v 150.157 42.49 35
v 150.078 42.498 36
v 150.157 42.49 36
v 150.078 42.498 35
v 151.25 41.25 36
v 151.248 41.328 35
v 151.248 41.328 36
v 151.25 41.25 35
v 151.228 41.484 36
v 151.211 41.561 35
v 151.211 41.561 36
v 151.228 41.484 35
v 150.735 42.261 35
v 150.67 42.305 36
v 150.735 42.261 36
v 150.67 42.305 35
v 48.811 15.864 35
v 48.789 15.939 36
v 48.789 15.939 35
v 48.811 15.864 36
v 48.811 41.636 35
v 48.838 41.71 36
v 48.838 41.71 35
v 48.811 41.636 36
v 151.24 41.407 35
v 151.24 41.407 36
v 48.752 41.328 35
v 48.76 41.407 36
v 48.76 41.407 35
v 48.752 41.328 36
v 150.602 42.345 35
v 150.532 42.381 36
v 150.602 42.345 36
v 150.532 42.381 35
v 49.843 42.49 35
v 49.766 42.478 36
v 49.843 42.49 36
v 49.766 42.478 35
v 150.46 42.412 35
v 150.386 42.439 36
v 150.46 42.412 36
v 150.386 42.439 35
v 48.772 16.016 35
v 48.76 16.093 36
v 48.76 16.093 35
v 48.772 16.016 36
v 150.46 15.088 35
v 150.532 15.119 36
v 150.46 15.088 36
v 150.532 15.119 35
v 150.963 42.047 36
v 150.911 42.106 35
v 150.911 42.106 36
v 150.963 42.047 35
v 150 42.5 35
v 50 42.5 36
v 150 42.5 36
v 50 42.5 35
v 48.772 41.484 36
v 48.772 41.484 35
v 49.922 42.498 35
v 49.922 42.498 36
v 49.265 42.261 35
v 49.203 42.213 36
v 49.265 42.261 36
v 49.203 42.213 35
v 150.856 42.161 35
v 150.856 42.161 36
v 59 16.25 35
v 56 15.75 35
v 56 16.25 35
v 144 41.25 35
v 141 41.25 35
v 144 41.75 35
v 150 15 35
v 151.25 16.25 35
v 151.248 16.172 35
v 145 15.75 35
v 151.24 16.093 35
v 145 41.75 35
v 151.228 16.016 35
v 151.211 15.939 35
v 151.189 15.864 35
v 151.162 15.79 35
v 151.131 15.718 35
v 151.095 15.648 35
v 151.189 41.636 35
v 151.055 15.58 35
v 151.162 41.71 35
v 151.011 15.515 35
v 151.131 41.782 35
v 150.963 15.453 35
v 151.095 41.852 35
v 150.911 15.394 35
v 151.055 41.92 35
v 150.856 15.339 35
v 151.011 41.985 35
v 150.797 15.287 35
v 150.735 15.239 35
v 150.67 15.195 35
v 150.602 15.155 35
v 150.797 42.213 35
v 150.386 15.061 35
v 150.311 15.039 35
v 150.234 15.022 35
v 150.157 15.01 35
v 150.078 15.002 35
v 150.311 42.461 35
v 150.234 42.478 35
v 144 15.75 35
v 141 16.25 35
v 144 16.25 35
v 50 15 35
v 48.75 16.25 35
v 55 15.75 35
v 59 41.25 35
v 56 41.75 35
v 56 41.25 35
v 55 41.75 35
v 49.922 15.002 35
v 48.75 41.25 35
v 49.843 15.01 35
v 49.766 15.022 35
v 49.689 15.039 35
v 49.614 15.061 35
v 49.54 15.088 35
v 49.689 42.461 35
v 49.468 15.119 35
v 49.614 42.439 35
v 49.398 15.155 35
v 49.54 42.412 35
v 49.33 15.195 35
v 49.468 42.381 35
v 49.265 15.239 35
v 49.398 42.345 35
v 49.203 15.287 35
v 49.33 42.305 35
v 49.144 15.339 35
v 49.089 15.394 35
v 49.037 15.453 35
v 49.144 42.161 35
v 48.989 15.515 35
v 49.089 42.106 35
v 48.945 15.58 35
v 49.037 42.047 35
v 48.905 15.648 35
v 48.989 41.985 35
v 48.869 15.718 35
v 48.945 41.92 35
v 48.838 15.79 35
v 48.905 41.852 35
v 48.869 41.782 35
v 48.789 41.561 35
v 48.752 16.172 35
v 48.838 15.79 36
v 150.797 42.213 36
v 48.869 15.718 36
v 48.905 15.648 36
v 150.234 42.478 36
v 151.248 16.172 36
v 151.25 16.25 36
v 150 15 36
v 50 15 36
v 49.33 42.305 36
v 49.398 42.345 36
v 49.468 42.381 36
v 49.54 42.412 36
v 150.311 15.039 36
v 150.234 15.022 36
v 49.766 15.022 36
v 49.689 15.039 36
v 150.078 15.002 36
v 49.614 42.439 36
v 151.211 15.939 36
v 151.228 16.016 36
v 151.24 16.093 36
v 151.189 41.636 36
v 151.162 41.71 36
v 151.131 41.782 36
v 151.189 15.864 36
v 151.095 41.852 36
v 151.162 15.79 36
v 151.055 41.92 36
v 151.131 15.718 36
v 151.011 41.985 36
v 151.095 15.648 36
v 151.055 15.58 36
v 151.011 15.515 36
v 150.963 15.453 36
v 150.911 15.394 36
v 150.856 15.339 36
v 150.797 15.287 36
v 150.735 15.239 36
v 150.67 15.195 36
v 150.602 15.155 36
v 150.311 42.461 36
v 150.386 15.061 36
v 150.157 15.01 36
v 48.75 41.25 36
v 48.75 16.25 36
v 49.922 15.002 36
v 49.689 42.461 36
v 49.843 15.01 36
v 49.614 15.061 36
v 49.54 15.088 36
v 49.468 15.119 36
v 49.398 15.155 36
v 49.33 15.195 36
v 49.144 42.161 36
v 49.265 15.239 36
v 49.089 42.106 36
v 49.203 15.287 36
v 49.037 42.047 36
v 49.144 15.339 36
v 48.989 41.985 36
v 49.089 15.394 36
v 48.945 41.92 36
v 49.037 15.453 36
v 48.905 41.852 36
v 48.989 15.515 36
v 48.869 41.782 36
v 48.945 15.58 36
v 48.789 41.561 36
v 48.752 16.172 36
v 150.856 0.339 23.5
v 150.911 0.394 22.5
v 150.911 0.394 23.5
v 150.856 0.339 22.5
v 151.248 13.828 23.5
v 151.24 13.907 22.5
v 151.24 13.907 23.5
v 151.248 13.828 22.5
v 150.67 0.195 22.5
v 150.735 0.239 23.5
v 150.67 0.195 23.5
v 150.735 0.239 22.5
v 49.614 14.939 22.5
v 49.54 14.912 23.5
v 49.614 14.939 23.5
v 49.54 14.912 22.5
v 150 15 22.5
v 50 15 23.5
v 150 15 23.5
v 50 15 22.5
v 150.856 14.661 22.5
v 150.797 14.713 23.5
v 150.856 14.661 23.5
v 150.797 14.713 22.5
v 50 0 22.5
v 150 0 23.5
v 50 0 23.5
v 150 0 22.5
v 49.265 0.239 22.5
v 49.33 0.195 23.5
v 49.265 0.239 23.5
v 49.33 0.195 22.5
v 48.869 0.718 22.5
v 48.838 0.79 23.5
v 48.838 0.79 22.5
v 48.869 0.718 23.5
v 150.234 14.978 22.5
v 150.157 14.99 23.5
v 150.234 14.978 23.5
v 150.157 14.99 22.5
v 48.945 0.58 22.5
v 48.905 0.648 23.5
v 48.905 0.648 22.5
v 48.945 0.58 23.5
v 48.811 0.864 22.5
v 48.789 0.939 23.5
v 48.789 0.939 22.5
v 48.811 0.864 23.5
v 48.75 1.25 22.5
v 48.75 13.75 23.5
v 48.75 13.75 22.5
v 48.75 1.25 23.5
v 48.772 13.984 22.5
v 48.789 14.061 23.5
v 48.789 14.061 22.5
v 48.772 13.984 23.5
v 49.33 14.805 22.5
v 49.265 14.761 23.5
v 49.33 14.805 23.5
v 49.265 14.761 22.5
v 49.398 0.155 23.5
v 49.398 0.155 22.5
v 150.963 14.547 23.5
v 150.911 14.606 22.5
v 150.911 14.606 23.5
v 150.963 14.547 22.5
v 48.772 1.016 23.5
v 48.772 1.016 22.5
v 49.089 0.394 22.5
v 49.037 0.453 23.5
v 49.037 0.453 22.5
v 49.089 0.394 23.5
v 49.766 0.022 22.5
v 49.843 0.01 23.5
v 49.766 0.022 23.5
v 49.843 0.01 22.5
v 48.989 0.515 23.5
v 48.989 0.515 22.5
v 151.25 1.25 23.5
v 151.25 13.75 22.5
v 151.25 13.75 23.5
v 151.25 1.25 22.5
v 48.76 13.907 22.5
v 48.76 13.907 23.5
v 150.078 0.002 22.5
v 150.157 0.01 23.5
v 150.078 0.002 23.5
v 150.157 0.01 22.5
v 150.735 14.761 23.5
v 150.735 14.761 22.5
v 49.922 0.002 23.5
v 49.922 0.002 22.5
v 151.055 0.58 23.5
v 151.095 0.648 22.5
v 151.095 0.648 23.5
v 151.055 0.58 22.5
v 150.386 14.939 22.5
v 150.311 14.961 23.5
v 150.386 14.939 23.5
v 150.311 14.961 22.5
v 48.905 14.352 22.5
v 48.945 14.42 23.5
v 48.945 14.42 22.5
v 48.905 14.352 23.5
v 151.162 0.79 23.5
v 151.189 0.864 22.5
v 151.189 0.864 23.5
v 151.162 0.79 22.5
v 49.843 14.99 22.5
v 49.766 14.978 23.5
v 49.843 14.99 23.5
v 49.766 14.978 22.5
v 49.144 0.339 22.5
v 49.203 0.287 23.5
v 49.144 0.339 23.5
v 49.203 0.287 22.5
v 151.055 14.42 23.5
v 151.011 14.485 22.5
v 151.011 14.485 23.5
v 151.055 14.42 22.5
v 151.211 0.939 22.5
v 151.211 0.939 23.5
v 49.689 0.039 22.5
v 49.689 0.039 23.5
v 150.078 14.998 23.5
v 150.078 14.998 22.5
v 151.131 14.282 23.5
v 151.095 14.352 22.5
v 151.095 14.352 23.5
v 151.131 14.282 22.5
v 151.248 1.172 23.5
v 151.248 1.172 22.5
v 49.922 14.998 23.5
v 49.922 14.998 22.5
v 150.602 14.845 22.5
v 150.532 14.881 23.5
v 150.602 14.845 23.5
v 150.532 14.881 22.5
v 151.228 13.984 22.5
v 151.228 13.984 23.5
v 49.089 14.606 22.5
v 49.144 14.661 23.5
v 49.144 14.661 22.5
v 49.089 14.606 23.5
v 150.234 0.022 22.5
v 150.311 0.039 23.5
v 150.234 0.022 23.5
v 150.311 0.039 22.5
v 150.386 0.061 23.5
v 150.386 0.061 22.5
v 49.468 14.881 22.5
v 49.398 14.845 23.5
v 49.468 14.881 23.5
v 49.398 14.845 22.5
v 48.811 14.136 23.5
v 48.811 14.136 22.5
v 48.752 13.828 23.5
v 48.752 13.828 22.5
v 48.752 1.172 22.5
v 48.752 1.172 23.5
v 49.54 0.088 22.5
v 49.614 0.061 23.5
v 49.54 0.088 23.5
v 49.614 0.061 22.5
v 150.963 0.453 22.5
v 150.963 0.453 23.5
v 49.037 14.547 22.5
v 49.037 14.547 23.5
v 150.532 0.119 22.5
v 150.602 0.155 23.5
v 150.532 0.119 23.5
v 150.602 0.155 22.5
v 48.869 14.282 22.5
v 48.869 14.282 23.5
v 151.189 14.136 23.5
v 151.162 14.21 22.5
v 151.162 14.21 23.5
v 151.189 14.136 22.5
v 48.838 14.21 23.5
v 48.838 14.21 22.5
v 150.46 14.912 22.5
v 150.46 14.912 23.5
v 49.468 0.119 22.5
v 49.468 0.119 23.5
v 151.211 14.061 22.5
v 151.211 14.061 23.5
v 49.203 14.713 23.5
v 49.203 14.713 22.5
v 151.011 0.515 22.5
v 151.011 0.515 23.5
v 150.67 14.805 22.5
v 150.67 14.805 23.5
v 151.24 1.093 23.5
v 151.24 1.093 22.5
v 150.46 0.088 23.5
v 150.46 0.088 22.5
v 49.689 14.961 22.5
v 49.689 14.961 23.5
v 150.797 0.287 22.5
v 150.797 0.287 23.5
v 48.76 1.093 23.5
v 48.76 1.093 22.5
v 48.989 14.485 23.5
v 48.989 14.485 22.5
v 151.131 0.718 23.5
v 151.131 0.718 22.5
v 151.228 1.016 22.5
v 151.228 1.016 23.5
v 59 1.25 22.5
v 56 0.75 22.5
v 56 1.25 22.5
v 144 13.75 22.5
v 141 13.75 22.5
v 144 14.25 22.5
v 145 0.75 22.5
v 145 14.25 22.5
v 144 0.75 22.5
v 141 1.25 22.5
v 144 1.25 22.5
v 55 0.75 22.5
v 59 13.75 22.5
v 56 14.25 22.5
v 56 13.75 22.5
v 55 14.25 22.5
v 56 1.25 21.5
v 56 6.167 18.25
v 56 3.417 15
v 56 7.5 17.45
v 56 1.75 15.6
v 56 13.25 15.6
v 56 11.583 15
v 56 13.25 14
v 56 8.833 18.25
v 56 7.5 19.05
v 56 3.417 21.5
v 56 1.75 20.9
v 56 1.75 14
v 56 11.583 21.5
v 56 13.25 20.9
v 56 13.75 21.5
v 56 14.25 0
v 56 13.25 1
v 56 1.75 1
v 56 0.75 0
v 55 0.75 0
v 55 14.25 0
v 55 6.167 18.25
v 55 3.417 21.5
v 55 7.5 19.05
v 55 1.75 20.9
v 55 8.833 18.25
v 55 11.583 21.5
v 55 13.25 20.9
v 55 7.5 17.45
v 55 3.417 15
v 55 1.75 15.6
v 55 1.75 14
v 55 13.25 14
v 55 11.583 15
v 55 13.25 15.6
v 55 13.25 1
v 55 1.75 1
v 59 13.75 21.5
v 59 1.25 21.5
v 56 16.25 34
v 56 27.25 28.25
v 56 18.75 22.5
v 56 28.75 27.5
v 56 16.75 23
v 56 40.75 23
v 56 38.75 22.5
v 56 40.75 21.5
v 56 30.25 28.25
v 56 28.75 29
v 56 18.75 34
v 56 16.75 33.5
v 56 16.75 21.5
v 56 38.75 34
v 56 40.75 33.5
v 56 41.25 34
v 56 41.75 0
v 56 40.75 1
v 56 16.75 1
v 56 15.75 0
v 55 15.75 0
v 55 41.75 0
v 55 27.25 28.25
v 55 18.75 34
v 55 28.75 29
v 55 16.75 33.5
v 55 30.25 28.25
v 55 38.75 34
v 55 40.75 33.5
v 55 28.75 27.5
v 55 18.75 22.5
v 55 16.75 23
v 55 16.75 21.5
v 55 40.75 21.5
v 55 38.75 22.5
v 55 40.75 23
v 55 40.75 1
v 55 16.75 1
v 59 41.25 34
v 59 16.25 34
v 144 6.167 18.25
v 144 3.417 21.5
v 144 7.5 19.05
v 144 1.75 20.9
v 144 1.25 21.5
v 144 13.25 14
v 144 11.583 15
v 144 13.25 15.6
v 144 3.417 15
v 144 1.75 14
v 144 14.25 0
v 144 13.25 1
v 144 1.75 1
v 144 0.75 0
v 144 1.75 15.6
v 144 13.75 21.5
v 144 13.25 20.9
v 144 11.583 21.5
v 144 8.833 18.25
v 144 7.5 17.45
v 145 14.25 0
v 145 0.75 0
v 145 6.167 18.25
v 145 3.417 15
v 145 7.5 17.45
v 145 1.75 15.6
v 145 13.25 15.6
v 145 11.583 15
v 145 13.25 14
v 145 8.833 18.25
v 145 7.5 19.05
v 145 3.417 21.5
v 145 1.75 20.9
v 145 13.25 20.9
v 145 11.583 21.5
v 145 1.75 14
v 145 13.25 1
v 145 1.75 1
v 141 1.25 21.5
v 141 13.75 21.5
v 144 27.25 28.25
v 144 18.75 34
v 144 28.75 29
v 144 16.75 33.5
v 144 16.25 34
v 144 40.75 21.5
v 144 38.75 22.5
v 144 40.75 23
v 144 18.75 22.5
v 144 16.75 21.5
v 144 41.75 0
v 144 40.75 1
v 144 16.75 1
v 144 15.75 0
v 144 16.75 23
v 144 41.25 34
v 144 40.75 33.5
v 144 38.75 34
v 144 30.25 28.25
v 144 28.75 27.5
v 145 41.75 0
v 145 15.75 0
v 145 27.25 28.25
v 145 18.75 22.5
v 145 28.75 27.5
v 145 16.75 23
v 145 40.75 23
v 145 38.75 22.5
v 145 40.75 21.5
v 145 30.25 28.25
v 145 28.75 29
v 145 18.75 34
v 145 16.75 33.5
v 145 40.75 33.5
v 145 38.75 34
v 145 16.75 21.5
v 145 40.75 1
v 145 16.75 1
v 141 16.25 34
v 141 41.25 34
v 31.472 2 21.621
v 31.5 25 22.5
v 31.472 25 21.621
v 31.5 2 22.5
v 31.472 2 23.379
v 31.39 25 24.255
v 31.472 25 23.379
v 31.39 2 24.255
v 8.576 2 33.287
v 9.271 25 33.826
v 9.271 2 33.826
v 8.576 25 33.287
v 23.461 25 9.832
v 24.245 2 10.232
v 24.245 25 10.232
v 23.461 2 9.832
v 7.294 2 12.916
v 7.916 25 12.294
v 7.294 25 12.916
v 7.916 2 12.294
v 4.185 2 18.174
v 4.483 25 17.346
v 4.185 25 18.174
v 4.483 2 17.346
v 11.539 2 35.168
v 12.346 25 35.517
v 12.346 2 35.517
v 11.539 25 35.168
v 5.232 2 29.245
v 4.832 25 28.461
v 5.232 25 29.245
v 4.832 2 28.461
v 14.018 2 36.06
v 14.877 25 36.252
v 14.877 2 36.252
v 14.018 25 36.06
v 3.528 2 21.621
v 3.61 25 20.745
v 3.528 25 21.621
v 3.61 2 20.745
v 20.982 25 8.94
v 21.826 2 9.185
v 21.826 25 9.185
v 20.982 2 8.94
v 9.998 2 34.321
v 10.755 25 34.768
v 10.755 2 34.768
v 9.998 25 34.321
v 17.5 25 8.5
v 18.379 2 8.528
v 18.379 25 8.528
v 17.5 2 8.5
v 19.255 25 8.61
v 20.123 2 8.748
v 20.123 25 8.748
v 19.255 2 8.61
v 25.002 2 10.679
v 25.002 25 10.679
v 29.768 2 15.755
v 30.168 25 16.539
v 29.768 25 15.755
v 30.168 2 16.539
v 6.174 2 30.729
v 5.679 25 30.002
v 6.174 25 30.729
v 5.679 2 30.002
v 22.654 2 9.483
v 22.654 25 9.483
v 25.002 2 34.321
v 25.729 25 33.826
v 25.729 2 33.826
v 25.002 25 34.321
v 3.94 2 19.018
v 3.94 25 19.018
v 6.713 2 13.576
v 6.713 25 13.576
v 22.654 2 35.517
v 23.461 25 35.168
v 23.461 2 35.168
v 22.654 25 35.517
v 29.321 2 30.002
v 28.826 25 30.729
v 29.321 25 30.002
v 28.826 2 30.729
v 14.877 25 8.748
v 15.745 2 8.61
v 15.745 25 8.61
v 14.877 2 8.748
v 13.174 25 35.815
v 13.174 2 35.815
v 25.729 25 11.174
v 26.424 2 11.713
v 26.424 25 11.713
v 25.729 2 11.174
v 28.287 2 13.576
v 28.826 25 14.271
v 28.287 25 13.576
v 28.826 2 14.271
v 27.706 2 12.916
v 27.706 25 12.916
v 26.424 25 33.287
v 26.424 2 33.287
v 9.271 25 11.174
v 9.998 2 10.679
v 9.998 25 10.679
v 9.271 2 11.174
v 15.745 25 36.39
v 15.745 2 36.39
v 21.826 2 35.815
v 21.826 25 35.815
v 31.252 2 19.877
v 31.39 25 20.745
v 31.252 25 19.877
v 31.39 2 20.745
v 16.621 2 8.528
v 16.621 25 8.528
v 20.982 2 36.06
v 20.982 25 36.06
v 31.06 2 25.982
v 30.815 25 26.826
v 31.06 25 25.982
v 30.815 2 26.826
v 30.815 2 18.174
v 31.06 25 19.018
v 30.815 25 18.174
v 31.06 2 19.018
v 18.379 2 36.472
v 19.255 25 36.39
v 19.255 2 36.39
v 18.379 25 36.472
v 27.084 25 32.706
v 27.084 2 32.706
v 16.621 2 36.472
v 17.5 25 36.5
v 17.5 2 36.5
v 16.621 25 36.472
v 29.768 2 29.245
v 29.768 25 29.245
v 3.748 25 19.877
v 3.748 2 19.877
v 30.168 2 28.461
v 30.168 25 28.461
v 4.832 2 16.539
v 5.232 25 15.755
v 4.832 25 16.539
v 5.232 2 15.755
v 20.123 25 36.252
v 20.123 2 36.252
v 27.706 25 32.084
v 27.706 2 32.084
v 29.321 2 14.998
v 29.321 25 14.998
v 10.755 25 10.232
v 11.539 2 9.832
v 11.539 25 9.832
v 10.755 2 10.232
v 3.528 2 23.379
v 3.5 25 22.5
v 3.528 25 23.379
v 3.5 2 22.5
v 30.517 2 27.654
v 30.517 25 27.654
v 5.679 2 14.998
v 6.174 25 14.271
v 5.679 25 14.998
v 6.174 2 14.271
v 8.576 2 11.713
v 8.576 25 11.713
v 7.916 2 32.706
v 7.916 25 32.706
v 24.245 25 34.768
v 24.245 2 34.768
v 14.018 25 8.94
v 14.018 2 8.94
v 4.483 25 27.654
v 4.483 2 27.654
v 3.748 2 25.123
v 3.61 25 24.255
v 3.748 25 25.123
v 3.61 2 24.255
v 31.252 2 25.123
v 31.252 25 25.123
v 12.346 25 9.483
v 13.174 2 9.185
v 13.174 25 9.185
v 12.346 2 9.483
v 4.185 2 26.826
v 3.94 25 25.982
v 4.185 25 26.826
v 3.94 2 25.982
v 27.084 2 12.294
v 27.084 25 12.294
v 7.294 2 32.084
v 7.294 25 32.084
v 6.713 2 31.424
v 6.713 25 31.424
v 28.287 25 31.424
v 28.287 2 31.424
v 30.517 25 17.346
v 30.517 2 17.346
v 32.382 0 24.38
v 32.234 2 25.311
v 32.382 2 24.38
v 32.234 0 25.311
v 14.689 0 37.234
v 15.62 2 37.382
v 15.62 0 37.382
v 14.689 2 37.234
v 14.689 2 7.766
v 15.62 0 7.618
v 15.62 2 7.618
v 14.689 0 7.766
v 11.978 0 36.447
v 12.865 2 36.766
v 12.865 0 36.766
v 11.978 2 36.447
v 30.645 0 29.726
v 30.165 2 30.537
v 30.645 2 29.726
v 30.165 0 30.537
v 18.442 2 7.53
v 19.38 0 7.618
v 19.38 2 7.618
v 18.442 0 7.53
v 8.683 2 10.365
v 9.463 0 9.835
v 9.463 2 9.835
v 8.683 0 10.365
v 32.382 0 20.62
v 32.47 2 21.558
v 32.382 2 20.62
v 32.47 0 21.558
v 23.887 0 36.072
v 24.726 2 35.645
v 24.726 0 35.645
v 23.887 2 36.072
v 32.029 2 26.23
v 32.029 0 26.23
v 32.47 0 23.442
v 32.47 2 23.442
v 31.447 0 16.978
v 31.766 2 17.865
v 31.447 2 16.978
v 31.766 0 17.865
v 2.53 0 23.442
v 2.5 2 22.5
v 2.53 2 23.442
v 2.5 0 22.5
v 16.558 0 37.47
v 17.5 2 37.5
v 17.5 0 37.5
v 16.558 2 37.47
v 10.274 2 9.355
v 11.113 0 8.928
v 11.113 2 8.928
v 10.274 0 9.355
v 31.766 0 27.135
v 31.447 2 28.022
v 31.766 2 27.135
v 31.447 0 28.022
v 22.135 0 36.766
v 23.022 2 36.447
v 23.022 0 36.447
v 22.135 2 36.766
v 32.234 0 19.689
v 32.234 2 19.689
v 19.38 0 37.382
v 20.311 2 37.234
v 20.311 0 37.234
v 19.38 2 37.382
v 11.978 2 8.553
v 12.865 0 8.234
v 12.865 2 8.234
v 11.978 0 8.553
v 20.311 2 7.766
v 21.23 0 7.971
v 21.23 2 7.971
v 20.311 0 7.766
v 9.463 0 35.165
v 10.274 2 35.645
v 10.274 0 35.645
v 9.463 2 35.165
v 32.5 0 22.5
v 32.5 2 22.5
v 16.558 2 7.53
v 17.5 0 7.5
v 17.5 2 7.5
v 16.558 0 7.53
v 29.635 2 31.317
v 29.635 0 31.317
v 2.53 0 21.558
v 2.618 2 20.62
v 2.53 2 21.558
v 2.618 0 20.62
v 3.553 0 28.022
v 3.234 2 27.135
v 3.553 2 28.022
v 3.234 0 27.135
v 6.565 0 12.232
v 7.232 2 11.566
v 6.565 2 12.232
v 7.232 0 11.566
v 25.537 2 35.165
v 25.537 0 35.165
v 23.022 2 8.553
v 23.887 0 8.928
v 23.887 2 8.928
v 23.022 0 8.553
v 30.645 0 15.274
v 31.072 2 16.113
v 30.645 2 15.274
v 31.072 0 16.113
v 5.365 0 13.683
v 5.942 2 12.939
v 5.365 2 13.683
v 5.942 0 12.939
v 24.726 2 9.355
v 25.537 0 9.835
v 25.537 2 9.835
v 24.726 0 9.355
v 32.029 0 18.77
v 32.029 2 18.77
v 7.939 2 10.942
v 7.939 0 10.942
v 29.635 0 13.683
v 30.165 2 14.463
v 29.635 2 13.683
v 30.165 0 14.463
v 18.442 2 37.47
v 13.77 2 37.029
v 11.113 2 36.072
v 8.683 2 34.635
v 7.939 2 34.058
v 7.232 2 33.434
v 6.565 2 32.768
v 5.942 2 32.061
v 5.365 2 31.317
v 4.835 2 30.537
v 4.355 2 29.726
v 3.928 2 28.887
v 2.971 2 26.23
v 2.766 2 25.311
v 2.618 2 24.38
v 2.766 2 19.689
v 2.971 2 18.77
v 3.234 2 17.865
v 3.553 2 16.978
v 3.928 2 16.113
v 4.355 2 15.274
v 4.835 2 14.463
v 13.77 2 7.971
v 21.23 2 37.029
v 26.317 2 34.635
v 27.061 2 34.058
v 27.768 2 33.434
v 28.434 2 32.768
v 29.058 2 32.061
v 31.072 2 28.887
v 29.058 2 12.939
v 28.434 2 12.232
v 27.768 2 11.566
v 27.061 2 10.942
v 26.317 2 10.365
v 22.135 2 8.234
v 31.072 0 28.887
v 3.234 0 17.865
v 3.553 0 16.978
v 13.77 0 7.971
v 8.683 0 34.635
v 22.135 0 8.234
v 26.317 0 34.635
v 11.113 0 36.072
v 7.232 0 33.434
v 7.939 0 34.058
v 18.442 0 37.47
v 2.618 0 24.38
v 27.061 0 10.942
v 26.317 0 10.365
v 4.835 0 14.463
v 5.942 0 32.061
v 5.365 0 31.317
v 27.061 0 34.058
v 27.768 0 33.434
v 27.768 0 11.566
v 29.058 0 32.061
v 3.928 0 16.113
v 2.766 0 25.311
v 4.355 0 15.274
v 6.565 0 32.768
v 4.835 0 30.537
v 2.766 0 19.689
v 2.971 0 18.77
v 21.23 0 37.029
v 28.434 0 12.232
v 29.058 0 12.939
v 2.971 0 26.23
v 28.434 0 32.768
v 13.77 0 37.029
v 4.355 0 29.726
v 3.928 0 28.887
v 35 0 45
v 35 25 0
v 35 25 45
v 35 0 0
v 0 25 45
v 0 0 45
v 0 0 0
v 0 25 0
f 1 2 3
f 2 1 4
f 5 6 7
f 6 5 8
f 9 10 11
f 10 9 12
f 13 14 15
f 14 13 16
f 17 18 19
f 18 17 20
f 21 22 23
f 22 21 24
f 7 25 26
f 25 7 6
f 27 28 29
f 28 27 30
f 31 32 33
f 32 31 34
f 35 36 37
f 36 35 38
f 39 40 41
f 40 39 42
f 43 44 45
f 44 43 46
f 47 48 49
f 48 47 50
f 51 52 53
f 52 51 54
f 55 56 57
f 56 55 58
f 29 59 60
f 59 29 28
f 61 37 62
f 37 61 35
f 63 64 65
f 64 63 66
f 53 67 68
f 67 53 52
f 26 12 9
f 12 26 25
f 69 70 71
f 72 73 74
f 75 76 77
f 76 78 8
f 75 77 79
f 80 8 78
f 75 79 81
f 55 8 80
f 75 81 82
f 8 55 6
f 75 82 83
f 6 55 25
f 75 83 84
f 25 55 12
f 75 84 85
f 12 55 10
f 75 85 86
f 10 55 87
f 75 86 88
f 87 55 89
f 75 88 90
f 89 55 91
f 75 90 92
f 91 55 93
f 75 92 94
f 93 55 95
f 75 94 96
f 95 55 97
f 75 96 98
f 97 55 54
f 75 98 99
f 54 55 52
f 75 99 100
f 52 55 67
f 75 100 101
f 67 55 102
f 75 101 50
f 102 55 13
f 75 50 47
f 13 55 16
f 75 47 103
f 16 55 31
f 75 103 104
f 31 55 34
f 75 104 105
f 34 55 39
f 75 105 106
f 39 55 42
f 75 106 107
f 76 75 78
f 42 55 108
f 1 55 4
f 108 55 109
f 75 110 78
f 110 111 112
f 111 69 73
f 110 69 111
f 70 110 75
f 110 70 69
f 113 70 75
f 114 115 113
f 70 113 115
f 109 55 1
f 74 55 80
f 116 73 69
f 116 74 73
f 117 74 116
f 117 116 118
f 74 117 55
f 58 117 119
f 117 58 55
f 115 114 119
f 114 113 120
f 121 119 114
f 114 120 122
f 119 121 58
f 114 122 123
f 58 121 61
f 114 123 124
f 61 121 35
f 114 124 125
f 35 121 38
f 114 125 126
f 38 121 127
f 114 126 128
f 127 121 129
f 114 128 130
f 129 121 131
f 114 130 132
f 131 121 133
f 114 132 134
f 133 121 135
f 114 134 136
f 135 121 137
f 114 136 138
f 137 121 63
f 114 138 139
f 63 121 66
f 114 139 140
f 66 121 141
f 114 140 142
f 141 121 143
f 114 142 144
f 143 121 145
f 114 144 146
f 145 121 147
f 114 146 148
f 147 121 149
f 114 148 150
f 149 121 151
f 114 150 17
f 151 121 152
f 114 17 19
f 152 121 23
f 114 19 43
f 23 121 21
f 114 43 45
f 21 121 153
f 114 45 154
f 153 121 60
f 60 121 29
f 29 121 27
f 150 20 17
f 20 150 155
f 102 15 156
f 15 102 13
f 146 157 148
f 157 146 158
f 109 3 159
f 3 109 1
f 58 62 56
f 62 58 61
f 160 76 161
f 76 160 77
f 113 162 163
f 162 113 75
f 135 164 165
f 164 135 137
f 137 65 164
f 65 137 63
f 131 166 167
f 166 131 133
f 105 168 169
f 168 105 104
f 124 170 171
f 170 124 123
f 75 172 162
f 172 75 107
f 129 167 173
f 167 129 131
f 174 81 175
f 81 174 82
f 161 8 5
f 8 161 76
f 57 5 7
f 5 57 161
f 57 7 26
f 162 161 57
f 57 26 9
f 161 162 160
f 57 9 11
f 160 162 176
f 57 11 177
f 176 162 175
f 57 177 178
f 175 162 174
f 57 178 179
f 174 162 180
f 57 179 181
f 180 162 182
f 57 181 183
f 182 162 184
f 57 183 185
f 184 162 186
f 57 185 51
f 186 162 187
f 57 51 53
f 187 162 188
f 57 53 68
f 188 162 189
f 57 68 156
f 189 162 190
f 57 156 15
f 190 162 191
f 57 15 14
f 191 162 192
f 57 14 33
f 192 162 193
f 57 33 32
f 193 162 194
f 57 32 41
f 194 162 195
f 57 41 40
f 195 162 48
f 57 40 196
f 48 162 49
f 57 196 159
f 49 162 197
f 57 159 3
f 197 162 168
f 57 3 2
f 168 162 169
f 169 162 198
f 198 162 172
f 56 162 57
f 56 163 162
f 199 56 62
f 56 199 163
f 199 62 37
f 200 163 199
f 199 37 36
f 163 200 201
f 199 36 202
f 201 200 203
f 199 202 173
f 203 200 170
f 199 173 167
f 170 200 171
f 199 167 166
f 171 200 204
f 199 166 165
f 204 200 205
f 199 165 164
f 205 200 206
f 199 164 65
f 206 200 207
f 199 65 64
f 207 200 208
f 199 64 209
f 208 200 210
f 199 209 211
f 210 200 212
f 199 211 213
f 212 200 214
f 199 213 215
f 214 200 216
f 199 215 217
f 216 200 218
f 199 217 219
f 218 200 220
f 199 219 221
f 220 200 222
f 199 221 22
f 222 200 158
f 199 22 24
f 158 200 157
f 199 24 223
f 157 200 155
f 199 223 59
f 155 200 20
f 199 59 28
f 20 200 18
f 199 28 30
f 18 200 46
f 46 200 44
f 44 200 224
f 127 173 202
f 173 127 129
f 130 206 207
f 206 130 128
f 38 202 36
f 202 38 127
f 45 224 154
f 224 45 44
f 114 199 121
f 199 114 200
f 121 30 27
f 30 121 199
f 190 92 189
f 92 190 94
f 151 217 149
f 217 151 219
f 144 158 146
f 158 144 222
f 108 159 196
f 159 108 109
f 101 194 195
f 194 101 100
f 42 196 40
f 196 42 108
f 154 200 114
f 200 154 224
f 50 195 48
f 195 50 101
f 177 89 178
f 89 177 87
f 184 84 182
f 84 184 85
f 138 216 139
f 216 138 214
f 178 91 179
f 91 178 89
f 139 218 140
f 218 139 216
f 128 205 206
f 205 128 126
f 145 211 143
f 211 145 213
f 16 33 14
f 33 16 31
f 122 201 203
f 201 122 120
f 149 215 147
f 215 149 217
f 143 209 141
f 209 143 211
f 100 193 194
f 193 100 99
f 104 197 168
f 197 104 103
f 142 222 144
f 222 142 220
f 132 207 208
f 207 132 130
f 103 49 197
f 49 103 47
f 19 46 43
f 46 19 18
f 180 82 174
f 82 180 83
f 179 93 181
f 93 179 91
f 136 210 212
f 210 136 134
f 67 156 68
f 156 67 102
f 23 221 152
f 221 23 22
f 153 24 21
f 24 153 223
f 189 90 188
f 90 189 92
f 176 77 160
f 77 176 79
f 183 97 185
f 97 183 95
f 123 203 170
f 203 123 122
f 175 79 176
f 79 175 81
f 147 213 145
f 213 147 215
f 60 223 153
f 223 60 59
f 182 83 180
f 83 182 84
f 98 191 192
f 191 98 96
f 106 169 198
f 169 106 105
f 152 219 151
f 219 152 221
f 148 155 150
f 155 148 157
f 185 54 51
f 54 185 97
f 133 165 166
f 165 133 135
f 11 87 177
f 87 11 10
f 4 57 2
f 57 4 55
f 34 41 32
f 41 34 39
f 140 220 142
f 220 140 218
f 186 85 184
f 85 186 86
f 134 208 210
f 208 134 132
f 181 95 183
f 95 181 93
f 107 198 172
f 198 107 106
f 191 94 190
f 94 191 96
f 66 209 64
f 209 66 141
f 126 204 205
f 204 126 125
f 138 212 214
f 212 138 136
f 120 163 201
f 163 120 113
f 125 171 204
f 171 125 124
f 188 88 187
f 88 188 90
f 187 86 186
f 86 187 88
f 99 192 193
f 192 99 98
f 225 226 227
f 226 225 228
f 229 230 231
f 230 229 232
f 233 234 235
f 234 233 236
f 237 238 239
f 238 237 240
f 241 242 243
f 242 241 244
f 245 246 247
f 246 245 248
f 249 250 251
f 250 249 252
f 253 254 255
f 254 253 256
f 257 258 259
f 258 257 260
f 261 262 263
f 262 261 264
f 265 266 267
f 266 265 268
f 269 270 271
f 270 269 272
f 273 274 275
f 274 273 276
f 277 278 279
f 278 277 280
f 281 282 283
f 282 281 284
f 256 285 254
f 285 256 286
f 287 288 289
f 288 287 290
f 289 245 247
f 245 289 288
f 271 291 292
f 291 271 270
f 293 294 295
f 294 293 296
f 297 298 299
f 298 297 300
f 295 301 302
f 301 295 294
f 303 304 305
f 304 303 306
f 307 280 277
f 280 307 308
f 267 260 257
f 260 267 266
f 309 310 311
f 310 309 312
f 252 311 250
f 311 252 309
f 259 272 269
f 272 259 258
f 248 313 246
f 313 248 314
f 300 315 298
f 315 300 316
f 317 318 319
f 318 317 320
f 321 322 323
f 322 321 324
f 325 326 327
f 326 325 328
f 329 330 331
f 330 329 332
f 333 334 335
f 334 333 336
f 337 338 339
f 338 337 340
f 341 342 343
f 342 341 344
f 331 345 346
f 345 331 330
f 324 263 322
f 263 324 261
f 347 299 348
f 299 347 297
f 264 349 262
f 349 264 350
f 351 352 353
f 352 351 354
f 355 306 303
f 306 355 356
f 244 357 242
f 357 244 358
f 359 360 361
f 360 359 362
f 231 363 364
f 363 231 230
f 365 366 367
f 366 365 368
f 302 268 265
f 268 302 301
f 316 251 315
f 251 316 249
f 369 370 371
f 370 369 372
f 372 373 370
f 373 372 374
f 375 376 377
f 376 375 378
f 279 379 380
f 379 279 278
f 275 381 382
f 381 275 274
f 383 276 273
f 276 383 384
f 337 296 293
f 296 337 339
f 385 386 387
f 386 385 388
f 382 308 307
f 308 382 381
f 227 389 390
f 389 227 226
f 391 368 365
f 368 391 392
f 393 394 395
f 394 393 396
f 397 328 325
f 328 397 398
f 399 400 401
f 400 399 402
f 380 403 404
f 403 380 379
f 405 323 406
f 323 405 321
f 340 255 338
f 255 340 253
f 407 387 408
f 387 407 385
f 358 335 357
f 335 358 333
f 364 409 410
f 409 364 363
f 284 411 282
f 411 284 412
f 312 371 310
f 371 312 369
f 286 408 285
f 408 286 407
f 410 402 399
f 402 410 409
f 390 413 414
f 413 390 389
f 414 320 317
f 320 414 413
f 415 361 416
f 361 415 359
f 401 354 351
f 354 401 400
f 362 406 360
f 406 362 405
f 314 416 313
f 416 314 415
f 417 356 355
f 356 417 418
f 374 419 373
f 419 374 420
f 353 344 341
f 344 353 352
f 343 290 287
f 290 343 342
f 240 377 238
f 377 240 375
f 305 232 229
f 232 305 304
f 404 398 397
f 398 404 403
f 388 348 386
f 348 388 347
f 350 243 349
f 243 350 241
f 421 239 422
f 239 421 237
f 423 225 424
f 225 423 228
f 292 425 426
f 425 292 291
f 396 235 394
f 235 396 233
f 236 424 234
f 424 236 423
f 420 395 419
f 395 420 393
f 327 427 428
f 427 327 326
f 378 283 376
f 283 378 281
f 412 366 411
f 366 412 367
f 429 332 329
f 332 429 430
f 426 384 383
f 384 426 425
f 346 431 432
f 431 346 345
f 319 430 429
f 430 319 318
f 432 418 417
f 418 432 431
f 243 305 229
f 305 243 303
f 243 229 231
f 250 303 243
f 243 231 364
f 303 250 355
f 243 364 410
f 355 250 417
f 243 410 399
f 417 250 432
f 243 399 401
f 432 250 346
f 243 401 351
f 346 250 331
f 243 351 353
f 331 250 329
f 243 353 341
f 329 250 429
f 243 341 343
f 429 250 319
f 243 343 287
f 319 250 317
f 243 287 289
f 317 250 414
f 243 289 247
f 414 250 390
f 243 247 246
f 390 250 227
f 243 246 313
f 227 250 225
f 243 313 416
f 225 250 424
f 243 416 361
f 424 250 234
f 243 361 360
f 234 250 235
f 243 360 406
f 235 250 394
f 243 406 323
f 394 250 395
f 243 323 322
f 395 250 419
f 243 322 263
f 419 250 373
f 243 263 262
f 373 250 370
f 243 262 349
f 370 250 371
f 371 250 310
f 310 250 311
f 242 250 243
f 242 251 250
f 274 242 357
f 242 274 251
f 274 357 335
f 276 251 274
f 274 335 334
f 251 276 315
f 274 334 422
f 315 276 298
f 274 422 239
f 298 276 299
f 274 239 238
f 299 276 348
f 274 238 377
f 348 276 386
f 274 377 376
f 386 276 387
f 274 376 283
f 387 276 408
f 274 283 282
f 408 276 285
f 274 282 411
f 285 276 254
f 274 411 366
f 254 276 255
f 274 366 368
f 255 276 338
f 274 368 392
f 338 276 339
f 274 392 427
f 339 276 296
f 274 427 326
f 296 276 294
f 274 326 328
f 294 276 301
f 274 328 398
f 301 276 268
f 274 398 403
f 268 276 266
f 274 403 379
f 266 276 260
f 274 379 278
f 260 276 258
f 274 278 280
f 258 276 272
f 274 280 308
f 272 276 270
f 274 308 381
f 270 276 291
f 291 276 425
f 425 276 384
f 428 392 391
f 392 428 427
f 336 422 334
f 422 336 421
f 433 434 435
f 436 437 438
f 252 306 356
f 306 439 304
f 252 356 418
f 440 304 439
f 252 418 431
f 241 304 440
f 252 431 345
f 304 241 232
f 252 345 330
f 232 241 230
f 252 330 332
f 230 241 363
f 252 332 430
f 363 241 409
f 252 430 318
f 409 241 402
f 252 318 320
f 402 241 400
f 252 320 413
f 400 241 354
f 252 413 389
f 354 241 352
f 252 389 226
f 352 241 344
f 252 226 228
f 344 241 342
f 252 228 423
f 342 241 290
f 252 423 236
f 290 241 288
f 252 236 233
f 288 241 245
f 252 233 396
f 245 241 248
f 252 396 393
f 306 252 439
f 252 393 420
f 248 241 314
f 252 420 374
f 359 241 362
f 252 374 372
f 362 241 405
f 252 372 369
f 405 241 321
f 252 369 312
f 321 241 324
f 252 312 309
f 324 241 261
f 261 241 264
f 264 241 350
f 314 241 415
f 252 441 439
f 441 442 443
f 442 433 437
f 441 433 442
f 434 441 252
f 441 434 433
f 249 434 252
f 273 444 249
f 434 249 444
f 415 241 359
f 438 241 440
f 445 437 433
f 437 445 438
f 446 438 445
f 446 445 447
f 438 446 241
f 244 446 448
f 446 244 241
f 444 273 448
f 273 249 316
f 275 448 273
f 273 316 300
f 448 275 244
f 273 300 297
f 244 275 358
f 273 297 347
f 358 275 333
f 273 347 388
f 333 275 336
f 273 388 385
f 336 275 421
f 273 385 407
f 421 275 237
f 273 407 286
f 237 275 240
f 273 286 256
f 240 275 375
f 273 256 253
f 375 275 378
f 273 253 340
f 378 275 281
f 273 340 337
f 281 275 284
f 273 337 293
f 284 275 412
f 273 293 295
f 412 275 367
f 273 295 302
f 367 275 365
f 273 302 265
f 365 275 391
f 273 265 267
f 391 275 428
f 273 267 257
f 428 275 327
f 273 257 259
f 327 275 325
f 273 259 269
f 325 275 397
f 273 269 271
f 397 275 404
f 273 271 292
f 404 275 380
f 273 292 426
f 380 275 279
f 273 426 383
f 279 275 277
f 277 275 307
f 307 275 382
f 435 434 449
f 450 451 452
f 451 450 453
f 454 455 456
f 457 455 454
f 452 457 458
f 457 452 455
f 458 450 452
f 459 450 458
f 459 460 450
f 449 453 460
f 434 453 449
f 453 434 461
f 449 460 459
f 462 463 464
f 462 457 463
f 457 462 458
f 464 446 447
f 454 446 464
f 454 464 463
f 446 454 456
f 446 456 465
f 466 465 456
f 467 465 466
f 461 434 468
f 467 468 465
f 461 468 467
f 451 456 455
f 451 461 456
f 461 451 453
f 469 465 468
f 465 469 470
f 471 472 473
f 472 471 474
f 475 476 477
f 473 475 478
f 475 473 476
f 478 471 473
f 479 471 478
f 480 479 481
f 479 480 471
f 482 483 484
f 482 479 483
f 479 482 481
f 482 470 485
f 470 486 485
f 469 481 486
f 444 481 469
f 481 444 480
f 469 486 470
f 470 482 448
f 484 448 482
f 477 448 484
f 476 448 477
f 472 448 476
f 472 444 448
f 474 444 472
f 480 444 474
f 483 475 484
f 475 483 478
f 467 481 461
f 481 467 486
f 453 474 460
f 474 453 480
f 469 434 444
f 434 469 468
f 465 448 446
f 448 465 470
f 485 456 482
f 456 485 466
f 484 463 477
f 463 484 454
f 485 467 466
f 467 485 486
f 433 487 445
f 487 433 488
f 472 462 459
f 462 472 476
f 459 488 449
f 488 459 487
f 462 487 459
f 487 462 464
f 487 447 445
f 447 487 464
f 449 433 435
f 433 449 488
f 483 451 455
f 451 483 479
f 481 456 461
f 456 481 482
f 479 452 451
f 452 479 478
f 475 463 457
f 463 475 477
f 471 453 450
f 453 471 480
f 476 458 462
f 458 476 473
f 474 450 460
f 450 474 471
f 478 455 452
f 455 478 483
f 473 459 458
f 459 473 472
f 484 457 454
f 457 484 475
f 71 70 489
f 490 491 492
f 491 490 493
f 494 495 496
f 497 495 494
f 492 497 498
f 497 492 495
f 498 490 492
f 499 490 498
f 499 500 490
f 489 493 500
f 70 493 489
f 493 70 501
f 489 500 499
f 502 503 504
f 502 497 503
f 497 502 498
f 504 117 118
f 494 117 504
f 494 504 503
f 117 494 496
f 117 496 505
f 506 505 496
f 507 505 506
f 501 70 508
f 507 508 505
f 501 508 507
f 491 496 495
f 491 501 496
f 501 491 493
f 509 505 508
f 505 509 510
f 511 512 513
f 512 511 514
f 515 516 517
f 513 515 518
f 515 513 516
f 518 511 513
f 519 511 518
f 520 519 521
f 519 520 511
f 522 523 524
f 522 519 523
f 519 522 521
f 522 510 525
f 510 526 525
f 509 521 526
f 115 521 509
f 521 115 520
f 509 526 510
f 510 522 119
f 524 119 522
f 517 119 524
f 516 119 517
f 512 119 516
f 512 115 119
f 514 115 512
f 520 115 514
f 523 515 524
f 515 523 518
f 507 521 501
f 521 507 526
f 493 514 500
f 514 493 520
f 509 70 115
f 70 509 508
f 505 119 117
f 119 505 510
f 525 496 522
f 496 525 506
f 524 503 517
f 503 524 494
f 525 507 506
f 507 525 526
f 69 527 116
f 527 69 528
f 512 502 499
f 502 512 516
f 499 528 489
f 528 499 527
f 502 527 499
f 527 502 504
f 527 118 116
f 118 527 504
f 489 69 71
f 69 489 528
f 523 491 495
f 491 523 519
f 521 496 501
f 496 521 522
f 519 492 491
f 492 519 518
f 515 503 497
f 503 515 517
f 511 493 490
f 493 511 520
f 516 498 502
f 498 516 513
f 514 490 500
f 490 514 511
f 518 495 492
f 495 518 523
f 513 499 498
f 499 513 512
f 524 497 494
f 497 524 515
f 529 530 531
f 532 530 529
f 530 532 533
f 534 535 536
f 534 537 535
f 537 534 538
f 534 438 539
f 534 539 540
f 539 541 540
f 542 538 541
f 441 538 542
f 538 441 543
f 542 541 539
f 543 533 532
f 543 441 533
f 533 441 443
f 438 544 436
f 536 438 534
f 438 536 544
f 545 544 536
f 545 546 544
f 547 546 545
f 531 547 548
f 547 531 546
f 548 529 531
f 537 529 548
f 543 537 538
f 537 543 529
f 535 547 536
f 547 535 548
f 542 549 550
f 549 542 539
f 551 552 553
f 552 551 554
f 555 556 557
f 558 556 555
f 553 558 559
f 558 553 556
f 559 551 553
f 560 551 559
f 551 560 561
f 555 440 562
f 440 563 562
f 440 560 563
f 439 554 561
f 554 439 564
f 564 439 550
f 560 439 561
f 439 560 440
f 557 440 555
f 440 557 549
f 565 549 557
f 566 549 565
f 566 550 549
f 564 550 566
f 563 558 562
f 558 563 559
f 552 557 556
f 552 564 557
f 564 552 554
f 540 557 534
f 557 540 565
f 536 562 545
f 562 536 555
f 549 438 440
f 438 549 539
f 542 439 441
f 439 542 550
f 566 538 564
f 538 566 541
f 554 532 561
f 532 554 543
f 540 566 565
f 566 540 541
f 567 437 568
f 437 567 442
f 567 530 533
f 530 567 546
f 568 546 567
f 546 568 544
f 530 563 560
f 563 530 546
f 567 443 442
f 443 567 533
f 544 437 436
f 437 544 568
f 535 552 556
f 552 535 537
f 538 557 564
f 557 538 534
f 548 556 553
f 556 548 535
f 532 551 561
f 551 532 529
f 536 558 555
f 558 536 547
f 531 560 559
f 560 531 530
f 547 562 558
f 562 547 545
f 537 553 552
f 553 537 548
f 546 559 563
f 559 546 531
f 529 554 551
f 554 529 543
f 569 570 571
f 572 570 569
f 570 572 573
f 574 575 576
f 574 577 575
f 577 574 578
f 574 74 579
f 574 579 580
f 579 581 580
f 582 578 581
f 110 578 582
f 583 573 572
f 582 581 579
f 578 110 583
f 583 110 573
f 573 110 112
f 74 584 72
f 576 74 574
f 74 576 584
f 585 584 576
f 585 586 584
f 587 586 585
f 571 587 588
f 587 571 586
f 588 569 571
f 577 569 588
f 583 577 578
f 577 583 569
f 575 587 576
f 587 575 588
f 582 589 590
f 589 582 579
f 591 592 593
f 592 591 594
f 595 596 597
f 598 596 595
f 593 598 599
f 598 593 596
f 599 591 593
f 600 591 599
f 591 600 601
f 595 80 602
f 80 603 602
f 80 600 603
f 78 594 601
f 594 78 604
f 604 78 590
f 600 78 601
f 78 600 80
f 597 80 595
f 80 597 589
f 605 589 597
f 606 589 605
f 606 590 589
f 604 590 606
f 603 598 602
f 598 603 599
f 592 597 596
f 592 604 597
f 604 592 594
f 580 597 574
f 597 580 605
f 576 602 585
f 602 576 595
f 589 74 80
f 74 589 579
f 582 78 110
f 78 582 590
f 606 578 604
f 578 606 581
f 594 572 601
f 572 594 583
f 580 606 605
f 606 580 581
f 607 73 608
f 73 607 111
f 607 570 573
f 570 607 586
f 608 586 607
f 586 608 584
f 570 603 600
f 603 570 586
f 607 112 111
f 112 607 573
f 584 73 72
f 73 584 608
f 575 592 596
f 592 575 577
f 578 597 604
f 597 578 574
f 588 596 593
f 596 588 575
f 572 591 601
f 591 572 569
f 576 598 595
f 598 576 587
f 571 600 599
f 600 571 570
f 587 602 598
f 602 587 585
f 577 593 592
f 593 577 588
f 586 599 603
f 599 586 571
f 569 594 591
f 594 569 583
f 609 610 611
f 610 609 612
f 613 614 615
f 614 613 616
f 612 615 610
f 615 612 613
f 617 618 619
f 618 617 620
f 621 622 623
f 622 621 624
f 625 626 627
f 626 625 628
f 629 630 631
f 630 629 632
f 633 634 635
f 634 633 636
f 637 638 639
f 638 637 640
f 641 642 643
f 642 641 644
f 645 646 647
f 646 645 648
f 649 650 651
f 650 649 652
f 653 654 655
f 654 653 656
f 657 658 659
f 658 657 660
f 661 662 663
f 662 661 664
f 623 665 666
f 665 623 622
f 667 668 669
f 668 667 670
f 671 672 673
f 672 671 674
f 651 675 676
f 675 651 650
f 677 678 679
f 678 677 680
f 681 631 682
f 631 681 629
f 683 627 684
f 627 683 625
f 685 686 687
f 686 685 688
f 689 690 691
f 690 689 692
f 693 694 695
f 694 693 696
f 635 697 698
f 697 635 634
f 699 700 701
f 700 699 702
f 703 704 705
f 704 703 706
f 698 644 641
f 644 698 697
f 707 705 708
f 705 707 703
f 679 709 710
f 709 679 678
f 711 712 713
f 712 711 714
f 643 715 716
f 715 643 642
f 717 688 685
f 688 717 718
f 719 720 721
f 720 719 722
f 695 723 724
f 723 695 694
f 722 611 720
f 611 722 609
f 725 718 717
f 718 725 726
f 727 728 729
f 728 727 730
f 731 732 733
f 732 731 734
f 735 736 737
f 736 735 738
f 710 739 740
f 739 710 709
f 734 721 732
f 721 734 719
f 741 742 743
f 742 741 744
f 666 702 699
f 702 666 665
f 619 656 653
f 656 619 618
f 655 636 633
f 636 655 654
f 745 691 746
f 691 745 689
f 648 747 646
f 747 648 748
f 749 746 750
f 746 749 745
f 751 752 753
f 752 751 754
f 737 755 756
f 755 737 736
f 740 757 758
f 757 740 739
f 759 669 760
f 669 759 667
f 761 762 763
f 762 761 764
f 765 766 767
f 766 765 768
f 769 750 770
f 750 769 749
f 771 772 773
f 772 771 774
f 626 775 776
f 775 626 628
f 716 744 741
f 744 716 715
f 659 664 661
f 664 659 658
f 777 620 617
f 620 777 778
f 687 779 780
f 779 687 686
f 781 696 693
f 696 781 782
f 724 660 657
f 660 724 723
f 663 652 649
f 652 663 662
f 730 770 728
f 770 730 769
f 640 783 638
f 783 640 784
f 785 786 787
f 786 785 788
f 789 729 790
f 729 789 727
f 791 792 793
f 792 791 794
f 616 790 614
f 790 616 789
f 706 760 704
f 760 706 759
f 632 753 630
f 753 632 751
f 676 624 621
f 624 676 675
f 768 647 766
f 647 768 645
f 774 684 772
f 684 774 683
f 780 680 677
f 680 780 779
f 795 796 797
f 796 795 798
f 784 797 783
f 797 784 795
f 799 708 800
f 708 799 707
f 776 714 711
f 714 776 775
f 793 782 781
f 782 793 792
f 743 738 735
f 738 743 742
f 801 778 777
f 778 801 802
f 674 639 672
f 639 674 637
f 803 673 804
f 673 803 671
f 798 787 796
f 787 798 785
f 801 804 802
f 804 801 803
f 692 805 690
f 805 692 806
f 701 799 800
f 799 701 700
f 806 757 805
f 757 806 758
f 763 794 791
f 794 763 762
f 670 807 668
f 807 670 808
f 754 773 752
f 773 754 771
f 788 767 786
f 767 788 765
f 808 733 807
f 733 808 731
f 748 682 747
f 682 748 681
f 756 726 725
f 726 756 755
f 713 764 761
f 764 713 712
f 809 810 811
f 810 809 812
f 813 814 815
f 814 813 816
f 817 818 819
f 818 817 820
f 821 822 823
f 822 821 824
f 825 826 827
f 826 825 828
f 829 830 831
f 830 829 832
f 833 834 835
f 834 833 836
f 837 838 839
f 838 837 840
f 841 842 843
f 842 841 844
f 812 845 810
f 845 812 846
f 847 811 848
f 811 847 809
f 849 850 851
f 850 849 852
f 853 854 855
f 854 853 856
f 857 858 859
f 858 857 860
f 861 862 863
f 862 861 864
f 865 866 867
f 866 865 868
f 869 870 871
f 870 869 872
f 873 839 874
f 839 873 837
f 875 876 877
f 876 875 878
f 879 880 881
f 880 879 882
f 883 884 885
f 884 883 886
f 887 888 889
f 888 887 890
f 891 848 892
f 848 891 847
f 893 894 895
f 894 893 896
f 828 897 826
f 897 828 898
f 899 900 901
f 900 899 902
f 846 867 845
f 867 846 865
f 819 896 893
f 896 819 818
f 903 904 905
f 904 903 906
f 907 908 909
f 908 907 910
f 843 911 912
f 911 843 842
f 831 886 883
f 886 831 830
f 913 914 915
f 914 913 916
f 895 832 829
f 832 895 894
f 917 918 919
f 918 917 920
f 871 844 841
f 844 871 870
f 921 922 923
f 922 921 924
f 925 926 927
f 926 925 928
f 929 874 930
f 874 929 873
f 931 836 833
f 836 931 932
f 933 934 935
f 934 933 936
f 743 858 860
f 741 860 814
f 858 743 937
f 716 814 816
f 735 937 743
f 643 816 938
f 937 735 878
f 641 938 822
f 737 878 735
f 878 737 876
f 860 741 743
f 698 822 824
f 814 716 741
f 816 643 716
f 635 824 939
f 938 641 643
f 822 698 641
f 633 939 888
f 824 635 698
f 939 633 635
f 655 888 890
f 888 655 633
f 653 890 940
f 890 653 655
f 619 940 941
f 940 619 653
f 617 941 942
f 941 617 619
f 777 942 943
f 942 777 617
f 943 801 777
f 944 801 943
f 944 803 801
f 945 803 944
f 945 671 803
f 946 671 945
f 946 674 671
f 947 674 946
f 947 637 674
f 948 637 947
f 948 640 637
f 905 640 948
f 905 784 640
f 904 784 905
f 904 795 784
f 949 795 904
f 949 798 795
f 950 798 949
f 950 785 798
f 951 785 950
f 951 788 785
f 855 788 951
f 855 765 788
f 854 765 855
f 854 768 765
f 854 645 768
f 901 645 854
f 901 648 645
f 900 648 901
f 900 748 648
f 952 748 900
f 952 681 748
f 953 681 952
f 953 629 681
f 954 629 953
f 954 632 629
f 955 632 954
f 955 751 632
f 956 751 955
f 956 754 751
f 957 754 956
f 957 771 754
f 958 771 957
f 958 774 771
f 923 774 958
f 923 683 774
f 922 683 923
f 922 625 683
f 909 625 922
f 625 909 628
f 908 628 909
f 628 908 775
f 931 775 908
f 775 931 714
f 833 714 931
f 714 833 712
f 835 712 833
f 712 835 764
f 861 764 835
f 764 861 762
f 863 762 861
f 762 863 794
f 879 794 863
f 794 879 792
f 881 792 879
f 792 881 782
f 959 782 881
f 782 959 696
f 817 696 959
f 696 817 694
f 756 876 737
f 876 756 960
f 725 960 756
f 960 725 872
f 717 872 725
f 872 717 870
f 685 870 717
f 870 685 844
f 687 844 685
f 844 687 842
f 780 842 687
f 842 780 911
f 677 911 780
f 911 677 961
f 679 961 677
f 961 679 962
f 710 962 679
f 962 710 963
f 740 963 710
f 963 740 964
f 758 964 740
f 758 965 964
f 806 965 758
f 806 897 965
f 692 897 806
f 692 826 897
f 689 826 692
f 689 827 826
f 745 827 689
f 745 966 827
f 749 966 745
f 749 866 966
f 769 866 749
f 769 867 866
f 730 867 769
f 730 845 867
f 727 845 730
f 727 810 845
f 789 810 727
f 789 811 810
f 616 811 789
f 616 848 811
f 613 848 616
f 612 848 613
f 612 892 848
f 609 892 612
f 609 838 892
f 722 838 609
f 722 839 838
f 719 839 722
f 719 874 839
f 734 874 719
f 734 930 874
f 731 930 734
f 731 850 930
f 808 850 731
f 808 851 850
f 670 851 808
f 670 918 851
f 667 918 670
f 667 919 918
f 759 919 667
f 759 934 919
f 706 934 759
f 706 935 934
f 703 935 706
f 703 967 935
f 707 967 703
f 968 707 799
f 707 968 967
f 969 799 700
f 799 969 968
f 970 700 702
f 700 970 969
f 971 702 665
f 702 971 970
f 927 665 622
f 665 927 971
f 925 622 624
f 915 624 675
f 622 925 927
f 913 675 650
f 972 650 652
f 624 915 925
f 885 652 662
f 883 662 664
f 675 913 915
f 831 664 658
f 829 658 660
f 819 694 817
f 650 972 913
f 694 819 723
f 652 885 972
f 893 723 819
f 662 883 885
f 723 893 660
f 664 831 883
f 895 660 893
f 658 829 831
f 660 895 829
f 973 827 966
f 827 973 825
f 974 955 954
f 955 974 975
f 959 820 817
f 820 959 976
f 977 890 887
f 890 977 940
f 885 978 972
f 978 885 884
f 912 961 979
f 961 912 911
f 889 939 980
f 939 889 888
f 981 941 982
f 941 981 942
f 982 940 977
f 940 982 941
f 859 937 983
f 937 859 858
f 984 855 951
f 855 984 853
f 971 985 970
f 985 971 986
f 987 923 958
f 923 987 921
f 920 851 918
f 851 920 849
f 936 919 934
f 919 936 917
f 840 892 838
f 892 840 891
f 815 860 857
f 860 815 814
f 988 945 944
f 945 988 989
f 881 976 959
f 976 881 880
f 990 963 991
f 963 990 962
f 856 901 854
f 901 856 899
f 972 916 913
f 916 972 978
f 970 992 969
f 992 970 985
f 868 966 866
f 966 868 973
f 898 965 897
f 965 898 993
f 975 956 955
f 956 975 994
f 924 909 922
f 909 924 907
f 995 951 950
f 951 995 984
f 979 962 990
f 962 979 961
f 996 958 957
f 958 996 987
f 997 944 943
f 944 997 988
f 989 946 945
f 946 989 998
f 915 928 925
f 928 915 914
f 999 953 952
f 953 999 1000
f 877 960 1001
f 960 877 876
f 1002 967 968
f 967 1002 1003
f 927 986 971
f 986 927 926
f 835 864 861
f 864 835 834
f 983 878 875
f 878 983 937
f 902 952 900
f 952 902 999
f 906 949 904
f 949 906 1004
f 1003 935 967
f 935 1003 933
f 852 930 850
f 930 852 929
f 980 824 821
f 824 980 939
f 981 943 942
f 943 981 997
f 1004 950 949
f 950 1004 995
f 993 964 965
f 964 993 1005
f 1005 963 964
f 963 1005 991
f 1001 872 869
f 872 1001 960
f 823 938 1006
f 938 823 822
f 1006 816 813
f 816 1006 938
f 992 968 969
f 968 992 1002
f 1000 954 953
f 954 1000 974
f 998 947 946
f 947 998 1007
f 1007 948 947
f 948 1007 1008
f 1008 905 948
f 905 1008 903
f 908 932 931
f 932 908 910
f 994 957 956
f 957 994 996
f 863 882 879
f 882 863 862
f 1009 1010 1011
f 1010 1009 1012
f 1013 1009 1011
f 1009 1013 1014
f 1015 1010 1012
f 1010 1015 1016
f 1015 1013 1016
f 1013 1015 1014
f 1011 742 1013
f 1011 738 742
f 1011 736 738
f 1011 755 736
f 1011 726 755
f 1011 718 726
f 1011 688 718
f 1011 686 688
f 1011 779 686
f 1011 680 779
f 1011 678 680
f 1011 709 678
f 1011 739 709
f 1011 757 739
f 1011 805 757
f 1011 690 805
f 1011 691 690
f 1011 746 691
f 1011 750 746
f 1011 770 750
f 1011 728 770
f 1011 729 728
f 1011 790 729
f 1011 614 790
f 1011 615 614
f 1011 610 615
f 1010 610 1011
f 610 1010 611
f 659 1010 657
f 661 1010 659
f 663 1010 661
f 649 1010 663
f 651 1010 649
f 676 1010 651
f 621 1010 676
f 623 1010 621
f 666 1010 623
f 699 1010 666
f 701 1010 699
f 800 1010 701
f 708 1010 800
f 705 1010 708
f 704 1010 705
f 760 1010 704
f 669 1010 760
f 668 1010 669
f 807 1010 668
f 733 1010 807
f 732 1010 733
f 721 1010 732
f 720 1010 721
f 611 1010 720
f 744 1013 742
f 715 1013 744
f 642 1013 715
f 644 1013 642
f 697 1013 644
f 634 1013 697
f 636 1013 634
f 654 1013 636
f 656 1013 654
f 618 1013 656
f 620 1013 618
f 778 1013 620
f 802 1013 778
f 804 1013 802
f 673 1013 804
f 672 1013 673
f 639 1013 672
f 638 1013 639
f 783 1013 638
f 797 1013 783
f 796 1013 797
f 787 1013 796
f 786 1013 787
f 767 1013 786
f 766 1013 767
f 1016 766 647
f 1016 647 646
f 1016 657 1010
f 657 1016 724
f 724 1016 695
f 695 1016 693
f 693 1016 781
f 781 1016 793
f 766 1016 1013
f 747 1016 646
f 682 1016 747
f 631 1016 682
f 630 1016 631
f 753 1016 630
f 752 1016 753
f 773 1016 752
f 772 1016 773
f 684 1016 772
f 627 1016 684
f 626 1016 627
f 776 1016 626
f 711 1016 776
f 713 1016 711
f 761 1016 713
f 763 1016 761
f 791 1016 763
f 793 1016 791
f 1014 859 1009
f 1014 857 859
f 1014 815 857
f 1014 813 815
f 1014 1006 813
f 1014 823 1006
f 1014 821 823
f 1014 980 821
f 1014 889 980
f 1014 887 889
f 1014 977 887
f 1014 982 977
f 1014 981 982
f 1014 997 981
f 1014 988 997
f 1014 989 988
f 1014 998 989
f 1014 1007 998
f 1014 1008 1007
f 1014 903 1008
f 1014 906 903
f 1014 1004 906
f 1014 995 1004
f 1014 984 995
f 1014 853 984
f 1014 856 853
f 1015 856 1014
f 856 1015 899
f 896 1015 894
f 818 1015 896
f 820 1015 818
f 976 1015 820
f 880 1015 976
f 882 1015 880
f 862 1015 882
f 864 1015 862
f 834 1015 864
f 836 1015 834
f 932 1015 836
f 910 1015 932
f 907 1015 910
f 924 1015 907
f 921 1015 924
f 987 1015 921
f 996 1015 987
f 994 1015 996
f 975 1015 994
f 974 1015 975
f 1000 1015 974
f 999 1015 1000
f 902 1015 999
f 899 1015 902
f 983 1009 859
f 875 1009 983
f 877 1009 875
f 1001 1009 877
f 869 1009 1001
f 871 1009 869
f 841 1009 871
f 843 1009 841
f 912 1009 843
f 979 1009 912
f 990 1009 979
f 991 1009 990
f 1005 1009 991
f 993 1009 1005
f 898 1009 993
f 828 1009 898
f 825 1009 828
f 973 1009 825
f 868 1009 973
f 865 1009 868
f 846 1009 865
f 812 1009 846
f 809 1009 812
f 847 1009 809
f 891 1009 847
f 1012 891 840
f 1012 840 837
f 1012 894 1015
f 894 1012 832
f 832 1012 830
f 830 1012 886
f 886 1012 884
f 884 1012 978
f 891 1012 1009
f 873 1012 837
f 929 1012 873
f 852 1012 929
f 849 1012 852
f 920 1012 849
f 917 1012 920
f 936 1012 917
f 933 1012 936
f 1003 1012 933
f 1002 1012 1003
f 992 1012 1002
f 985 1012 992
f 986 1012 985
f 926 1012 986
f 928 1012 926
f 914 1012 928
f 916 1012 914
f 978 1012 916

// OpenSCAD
$fn=100;
//Tisch Zeug
tischXYZ=[200,50,70]; tischPlatteDicke=2;tischEcke=5;
bankXYZ=[200,25,45]; bankPlatteDicke=2;bankEcke=5;
beinDicke=2;
//Box Zeug
wiggle=.02;
boxAussenD=30;
boxAussenH=2;
boxInnenD=28;
boxInnenH=2;
boxXYZ=[35,25,45];

module tischPlatte () {
    hull() {
        //4 Ecken
        translate([0,0,0]) cylinder(h=tischPlatteDicke,d=tischEcke);
        translate([tischXYZ.x,0,0]) cylinder(h=tischPlatteDicke,d=tischEcke);
        translate([tischXYZ.x,tischXYZ.y,0]) cylinder(h=tischPlatteDicke,d=tischEcke);
        translate([0,tischXYZ.y,0]) cylinder(h=tischPlatteDicke,d=tischEcke);
    }
}
module bankPlatte() {
    hull() {
        //4 Ecken
        translate([0,0,0]) cylinder(h=bankPlatteDicke,d=bankEcke);
        translate([bankXYZ.x,0,0]) cylinder(h=bankPlatteDicke,d=bankEcke);
        translate([bankXYZ.x,bankXYZ.y,0]) cylinder(h=bankPlatteDicke,d=bankEcke);
        translate([0,bankXYZ.y,0]) cylinder(h=bankPlatteDicke,d=bankEcke);
    }
}
module Bein(maase,ecke,kreuzH) {
    //Bein
    union() {
        //Beine
        translate([0,ecke/2,0]) cube([beinDicke,beinDicke,maase.z]);
        translate([0,maase.y+ecke/2,0]) cube([beinDicke,beinDicke,maase.z]);
        //unten
        translate([0,ecke/2+beinDicke/2,0]) cube([beinDicke,maase.y,beinDicke]);
        //oben
        translate([0,ecke/2+beinDicke/2,maase.z-beinDicke]) cube([beinDicke*4,maase.y,beinDicke]);
        //mitten
        translate([0,ecke/2+beinDicke/2,maase.z-beinDicke-kreuzH]) cube([beinDicke,maase.y,beinDicke]);
        //quer
        hull() {
            translate([0,ecke/2,maase.z-beinDicke-kreuzH]) cube([beinDicke,beinDicke,beinDicke]);
            translate([0,maase.y+ecke/2,maase.z-beinDicke]) cube([beinDicke,beinDicke,beinDicke]);
        }
        hull() {
            translate([0,ecke/2,maase.z-beinDicke]) cube([beinDicke,beinDicke,beinDicke]);
            translate([0,maase.y+ecke/2,maase.z-beinDicke-kreuzH]) cube([beinDicke,beinDicke,beinDicke]);
        }
    }
}

module lautsprecher() {
    translate([0,0,-(boxAussenH+boxInnenH)]) {
        cylinder(h=boxInnenH+wiggle,d=boxInnenD);
        translate([0,0,boxInnenH]) cylinder(h=boxAussenH+wiggle,d=boxAussenD);
        //loch
        translate([0,0,-boxXYZ.y+2]) cylinder(h=boxXYZ.y+wiggle,d=boxInnenD);
    }
}
module box () {
    difference(){
        color("grey") cube(boxXYZ);
        translate([boxXYZ.x/2,0,boxXYZ.z/2]) rotate([90,0,0]) lautsprecher();
    }
}

//drucken
groesse=.5;
*union(){
    scale(groesse) {
        //tisch
        tischPlatte();
        //bänke
        translate ([0,57,0]) bankPlatte();
        translate ([0,-32,0]) bankPlatte();
        //beine
        translate ([148,86,0]) rotate([0,-90,270]) Bein(bankXYZ,bankEcke,15);
        translate ([13,86,0]) rotate([0,-90,270]) Bein(bankXYZ,bankEcke,15);
        translate ([93,93,0]) rotate([0,-90,0]) Bein(bankXYZ,bankEcke,15);
        translate ([146,93,0]) rotate([0,-90,0]) Bein(bankXYZ,bankEcke,15);
        translate ([42,86,0]) rotate([0,-90,270]) Bein(tischXYZ,tischEcke,25);
        translate ([95,86,0]) rotate([0,-90,270]) Bein(tischXYZ,tischEcke,25);
    }
     translate([boxXYZ.z+25,-53,boxXYZ.y]) rotate([270,0,90]) box();
}

// ansehen
union() {
    translate([50,0,0]) scale(groesse) {
        color("yellow") {
            //tisch
            translate([0,bankEcke/2+bankXYZ.y+5,tischXYZ.z]) tischPlatte();
            //bank
            translate([0,bankEcke/2,bankXYZ.z]) bankPlatte();
        }
        color("green") {
            translate([10,-beinDicke/2,0]) Bein(bankXYZ,bankEcke,15);
            translate([10,tischEcke/2+bankXYZ.y+1.5,0]) Bein(tischXYZ,tischEcke,25);
            translate([190,31,0]) rotate([0,0,180]) Bein(bankXYZ,bankEcke,15);
            translate([190,86,0]) rotate([0,0,180]) Bein(tischXYZ,tischEcke,25);
        }
    }
    box();
}
